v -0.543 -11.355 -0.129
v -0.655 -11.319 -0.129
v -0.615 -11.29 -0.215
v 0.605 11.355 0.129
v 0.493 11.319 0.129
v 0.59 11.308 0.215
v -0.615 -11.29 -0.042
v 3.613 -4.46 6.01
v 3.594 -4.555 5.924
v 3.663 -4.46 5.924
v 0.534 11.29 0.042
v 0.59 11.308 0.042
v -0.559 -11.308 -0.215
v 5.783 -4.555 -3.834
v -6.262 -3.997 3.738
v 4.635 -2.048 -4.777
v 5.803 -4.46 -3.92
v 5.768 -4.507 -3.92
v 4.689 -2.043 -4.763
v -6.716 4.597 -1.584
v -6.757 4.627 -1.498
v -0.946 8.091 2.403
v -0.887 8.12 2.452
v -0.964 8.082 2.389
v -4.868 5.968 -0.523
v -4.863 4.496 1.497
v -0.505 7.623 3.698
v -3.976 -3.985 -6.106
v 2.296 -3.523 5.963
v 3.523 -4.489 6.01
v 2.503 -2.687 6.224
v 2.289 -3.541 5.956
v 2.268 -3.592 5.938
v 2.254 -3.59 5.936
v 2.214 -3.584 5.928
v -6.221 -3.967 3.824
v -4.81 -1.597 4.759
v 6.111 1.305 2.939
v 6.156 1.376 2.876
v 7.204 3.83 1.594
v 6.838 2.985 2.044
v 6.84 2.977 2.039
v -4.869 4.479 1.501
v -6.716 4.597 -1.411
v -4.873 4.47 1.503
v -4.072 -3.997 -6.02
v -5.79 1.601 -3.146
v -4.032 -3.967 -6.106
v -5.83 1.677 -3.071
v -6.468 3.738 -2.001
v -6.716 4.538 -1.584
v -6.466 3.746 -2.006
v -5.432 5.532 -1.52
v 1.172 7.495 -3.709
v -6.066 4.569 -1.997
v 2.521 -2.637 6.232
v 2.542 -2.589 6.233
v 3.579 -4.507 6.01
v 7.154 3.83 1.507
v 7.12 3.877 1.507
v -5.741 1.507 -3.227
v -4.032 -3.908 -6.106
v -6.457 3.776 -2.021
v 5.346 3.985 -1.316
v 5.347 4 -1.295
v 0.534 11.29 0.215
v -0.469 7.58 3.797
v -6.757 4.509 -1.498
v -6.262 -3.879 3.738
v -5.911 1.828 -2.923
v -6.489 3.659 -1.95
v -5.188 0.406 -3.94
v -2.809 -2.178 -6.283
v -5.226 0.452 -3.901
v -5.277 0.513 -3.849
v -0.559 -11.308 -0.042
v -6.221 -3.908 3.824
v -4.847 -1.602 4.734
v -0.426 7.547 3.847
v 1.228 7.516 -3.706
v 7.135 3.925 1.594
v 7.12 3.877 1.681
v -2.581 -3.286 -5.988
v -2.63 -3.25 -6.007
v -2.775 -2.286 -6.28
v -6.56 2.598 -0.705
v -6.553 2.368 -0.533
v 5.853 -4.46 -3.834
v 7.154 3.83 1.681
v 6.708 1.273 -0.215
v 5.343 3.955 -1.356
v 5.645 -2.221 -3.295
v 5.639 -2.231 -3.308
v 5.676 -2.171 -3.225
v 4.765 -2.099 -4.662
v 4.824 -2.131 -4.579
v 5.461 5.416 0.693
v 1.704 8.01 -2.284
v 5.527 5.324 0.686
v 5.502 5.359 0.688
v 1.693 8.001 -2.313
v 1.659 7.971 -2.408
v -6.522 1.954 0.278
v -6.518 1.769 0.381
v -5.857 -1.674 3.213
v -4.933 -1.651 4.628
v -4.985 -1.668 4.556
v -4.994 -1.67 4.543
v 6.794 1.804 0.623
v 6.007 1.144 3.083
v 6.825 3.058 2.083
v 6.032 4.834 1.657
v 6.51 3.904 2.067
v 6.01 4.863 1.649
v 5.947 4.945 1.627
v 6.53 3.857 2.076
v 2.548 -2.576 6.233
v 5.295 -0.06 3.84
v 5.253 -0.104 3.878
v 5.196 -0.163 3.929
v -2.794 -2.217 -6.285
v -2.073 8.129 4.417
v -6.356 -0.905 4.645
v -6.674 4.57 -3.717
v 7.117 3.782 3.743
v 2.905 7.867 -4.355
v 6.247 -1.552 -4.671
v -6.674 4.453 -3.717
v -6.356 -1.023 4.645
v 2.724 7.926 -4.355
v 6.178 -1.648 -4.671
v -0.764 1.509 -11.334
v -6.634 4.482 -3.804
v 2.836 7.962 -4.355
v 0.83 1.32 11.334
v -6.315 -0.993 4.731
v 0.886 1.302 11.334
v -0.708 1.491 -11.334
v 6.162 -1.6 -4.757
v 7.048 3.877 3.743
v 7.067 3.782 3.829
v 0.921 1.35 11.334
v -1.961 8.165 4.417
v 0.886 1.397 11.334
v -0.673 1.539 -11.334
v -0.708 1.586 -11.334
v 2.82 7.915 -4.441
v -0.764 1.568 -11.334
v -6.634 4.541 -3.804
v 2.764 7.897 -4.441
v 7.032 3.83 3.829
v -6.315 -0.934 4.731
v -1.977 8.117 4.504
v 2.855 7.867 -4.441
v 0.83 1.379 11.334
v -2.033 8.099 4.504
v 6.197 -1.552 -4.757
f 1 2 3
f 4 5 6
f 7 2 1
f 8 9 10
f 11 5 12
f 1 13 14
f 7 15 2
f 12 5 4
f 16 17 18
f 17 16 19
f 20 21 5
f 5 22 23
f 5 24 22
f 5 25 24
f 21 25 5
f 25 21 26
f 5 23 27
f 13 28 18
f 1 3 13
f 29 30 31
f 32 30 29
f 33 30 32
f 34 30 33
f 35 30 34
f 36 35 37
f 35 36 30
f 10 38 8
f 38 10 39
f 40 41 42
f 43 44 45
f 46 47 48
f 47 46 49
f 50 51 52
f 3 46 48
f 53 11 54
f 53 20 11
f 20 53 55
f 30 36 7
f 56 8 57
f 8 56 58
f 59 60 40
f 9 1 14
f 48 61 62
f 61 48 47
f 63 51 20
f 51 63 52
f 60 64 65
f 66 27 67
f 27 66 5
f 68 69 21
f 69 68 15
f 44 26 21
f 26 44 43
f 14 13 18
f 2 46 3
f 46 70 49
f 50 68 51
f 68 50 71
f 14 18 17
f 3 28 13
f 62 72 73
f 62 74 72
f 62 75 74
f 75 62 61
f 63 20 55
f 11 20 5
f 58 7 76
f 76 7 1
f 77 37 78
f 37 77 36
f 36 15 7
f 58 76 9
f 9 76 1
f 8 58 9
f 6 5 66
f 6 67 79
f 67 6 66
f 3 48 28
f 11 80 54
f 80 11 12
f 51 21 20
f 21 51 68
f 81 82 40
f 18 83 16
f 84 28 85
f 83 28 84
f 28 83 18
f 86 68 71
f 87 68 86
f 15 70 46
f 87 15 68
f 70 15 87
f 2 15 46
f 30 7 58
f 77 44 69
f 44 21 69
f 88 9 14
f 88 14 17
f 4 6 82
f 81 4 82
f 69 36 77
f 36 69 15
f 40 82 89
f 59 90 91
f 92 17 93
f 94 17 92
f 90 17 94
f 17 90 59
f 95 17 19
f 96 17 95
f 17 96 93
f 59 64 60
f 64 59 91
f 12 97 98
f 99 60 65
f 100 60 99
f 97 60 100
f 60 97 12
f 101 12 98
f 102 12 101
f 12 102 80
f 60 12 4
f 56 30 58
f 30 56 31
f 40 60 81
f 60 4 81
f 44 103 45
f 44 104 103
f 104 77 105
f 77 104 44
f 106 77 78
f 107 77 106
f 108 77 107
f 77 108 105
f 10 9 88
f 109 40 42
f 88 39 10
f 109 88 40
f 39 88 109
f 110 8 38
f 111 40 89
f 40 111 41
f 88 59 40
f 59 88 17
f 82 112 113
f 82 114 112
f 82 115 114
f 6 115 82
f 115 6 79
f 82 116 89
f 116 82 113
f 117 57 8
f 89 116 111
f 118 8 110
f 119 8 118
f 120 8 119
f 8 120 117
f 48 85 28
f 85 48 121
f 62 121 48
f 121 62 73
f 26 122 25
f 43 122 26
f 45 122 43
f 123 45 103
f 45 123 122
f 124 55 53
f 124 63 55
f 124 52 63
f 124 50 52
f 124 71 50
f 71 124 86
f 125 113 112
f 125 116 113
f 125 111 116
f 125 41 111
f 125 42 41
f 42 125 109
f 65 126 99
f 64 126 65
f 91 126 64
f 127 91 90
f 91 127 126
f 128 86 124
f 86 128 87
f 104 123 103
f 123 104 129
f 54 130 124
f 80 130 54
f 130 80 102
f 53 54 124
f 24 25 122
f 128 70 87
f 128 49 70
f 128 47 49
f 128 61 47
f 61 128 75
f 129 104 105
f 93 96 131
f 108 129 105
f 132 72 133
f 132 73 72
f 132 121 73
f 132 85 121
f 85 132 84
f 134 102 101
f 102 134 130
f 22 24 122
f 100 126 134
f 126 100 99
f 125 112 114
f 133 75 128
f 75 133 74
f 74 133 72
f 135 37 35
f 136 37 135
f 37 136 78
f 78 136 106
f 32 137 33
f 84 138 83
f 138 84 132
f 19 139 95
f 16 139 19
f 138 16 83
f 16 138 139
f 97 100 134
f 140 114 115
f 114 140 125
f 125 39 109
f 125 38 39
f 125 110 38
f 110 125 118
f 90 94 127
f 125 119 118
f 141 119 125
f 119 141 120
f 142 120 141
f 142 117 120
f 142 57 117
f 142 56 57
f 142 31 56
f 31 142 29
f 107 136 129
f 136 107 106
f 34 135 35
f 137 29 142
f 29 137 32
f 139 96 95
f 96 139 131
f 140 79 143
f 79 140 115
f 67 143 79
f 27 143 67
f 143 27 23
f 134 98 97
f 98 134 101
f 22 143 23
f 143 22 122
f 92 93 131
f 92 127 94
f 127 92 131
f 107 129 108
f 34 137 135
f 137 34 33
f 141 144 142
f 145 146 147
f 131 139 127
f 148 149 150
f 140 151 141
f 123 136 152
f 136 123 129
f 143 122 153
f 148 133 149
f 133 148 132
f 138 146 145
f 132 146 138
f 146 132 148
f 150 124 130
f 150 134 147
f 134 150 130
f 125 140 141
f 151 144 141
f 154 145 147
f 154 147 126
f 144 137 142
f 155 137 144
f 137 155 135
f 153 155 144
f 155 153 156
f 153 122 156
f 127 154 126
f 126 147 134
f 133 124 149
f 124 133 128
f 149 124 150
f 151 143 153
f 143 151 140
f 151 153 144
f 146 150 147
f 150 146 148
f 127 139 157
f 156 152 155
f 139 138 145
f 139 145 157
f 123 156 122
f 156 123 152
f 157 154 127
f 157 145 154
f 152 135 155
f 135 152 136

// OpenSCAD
// Auto-generated OpenSCAD file

    inner_points = 10*[[0.28049451672543285, 0.7867345754664719, -0.4354727591501641], [-0.32516147561098985, -0.49081979957517285, -0.40329143290440955], [0.6146891757185167, -0.15523991749246438, -0.467063652066502], [-0.6593561346040736, 0.45115469338376324, -0.3717005399880716], [0.7016700222556713, 0.3782028432350707, 0.37428832740645657], [-0.1992160562123516, 0.806988584660629, 0.4417202306321675], [0.27340656300831917, -0.5251645186914181, 0.39704396142240617], [-0.6274795154597037, -0.09637877726585975, 0.4644758646481171], [-0.0723068878516462, 0.15388180167658133, -1.1246958983691562], [0.08706866180685142, 0.13498761925367364, 1.1246958983691562]];

    outer_points = 10*[[0.17620995754639138, 0.41987517424097626, -0.6851507748037986], [-0.13338679414034935, 0.41987517424097626, 0.6947585886491126], [-0.6676027533643164, 0.4567802144980838, -0.14978349254876247], [0.7104259167703585, 0.3829701339838687, 0.15939130639407634], [-0.3991593090883643, -0.393779370015213, -0.6019853395350742], [0.5752541082333443, -0.4459709784667395, -0.3833657426306054], [-0.6180772716393863, -0.393779370015213, 0.37375792878529157], [0.35633614568232225, -0.4459709784667395, 0.5923775256897603], [0.05742142630098579, 1.1260182319875078, 0.01288308314360636], [-0.05742142630098579, -1.1260182319875078, -0.01288308314360636]];

    // Convex hull for inner set (I)
    module inner_hull() {
        hull() {
            for (p = inner_points) {
                translate(p) sphere(r=0.1);
            }
        }
    }

    // Convex hull for outer set (O) minus inner hull (O \ I)
    module outer_minus_inner() {
        difference() {
            hull() {
                for (p = outer_points) {
                    translate(p) sphere(r=0.1);
                }
            }
            inner_hull(); // Subtract inner hull
        }
    }

    // Convex hull for outer set (O) minus all translated inner hulls
    module outer_minus_AllTranslationInner() {
        difference() {
            hull() {
                for (p = outer_points) {
                    translate(p) sphere(r=0.1);
                }
            }
            hull() {
                translate([0,0,50]) inner_hull();
                translate([0,0,-50]) inner_hull();
            }; // Subtract translated inner hulls
        }
    }

    // Difference between outer_minus_inner and outer_minus_AllTranslationInner
    module outer_minus_inner_diff() {
        difference() {
            // Outer minus inner
            difference() {
                hull() {
                    for (p = outer_points) {
                        translate(p) sphere(r=0.1);
                    }
                }
                inner_hull();
            }

            // Subtract Outer minus AllTranslationInner
            difference() {
                hull() {
                    for (p = outer_points) {
                        translate(p) sphere(r=0.1);
                    }
                }
                hull() {
                    translate([0,0,50]) inner_hull();
                    translate([0,0,-50]) inner_hull();
                };
            }
        }
    }

    // Rendering all with colors applied
    color([1, 0, 0, 0.5]) inner_hull(); // Transparent red
    color([0, 1, 0, 1]) outer_minus_AllTranslationInner(); // Opaque green
    color([1, 1, 0, 1]) outer_minus_inner_diff(); // Opaque yellow
    
